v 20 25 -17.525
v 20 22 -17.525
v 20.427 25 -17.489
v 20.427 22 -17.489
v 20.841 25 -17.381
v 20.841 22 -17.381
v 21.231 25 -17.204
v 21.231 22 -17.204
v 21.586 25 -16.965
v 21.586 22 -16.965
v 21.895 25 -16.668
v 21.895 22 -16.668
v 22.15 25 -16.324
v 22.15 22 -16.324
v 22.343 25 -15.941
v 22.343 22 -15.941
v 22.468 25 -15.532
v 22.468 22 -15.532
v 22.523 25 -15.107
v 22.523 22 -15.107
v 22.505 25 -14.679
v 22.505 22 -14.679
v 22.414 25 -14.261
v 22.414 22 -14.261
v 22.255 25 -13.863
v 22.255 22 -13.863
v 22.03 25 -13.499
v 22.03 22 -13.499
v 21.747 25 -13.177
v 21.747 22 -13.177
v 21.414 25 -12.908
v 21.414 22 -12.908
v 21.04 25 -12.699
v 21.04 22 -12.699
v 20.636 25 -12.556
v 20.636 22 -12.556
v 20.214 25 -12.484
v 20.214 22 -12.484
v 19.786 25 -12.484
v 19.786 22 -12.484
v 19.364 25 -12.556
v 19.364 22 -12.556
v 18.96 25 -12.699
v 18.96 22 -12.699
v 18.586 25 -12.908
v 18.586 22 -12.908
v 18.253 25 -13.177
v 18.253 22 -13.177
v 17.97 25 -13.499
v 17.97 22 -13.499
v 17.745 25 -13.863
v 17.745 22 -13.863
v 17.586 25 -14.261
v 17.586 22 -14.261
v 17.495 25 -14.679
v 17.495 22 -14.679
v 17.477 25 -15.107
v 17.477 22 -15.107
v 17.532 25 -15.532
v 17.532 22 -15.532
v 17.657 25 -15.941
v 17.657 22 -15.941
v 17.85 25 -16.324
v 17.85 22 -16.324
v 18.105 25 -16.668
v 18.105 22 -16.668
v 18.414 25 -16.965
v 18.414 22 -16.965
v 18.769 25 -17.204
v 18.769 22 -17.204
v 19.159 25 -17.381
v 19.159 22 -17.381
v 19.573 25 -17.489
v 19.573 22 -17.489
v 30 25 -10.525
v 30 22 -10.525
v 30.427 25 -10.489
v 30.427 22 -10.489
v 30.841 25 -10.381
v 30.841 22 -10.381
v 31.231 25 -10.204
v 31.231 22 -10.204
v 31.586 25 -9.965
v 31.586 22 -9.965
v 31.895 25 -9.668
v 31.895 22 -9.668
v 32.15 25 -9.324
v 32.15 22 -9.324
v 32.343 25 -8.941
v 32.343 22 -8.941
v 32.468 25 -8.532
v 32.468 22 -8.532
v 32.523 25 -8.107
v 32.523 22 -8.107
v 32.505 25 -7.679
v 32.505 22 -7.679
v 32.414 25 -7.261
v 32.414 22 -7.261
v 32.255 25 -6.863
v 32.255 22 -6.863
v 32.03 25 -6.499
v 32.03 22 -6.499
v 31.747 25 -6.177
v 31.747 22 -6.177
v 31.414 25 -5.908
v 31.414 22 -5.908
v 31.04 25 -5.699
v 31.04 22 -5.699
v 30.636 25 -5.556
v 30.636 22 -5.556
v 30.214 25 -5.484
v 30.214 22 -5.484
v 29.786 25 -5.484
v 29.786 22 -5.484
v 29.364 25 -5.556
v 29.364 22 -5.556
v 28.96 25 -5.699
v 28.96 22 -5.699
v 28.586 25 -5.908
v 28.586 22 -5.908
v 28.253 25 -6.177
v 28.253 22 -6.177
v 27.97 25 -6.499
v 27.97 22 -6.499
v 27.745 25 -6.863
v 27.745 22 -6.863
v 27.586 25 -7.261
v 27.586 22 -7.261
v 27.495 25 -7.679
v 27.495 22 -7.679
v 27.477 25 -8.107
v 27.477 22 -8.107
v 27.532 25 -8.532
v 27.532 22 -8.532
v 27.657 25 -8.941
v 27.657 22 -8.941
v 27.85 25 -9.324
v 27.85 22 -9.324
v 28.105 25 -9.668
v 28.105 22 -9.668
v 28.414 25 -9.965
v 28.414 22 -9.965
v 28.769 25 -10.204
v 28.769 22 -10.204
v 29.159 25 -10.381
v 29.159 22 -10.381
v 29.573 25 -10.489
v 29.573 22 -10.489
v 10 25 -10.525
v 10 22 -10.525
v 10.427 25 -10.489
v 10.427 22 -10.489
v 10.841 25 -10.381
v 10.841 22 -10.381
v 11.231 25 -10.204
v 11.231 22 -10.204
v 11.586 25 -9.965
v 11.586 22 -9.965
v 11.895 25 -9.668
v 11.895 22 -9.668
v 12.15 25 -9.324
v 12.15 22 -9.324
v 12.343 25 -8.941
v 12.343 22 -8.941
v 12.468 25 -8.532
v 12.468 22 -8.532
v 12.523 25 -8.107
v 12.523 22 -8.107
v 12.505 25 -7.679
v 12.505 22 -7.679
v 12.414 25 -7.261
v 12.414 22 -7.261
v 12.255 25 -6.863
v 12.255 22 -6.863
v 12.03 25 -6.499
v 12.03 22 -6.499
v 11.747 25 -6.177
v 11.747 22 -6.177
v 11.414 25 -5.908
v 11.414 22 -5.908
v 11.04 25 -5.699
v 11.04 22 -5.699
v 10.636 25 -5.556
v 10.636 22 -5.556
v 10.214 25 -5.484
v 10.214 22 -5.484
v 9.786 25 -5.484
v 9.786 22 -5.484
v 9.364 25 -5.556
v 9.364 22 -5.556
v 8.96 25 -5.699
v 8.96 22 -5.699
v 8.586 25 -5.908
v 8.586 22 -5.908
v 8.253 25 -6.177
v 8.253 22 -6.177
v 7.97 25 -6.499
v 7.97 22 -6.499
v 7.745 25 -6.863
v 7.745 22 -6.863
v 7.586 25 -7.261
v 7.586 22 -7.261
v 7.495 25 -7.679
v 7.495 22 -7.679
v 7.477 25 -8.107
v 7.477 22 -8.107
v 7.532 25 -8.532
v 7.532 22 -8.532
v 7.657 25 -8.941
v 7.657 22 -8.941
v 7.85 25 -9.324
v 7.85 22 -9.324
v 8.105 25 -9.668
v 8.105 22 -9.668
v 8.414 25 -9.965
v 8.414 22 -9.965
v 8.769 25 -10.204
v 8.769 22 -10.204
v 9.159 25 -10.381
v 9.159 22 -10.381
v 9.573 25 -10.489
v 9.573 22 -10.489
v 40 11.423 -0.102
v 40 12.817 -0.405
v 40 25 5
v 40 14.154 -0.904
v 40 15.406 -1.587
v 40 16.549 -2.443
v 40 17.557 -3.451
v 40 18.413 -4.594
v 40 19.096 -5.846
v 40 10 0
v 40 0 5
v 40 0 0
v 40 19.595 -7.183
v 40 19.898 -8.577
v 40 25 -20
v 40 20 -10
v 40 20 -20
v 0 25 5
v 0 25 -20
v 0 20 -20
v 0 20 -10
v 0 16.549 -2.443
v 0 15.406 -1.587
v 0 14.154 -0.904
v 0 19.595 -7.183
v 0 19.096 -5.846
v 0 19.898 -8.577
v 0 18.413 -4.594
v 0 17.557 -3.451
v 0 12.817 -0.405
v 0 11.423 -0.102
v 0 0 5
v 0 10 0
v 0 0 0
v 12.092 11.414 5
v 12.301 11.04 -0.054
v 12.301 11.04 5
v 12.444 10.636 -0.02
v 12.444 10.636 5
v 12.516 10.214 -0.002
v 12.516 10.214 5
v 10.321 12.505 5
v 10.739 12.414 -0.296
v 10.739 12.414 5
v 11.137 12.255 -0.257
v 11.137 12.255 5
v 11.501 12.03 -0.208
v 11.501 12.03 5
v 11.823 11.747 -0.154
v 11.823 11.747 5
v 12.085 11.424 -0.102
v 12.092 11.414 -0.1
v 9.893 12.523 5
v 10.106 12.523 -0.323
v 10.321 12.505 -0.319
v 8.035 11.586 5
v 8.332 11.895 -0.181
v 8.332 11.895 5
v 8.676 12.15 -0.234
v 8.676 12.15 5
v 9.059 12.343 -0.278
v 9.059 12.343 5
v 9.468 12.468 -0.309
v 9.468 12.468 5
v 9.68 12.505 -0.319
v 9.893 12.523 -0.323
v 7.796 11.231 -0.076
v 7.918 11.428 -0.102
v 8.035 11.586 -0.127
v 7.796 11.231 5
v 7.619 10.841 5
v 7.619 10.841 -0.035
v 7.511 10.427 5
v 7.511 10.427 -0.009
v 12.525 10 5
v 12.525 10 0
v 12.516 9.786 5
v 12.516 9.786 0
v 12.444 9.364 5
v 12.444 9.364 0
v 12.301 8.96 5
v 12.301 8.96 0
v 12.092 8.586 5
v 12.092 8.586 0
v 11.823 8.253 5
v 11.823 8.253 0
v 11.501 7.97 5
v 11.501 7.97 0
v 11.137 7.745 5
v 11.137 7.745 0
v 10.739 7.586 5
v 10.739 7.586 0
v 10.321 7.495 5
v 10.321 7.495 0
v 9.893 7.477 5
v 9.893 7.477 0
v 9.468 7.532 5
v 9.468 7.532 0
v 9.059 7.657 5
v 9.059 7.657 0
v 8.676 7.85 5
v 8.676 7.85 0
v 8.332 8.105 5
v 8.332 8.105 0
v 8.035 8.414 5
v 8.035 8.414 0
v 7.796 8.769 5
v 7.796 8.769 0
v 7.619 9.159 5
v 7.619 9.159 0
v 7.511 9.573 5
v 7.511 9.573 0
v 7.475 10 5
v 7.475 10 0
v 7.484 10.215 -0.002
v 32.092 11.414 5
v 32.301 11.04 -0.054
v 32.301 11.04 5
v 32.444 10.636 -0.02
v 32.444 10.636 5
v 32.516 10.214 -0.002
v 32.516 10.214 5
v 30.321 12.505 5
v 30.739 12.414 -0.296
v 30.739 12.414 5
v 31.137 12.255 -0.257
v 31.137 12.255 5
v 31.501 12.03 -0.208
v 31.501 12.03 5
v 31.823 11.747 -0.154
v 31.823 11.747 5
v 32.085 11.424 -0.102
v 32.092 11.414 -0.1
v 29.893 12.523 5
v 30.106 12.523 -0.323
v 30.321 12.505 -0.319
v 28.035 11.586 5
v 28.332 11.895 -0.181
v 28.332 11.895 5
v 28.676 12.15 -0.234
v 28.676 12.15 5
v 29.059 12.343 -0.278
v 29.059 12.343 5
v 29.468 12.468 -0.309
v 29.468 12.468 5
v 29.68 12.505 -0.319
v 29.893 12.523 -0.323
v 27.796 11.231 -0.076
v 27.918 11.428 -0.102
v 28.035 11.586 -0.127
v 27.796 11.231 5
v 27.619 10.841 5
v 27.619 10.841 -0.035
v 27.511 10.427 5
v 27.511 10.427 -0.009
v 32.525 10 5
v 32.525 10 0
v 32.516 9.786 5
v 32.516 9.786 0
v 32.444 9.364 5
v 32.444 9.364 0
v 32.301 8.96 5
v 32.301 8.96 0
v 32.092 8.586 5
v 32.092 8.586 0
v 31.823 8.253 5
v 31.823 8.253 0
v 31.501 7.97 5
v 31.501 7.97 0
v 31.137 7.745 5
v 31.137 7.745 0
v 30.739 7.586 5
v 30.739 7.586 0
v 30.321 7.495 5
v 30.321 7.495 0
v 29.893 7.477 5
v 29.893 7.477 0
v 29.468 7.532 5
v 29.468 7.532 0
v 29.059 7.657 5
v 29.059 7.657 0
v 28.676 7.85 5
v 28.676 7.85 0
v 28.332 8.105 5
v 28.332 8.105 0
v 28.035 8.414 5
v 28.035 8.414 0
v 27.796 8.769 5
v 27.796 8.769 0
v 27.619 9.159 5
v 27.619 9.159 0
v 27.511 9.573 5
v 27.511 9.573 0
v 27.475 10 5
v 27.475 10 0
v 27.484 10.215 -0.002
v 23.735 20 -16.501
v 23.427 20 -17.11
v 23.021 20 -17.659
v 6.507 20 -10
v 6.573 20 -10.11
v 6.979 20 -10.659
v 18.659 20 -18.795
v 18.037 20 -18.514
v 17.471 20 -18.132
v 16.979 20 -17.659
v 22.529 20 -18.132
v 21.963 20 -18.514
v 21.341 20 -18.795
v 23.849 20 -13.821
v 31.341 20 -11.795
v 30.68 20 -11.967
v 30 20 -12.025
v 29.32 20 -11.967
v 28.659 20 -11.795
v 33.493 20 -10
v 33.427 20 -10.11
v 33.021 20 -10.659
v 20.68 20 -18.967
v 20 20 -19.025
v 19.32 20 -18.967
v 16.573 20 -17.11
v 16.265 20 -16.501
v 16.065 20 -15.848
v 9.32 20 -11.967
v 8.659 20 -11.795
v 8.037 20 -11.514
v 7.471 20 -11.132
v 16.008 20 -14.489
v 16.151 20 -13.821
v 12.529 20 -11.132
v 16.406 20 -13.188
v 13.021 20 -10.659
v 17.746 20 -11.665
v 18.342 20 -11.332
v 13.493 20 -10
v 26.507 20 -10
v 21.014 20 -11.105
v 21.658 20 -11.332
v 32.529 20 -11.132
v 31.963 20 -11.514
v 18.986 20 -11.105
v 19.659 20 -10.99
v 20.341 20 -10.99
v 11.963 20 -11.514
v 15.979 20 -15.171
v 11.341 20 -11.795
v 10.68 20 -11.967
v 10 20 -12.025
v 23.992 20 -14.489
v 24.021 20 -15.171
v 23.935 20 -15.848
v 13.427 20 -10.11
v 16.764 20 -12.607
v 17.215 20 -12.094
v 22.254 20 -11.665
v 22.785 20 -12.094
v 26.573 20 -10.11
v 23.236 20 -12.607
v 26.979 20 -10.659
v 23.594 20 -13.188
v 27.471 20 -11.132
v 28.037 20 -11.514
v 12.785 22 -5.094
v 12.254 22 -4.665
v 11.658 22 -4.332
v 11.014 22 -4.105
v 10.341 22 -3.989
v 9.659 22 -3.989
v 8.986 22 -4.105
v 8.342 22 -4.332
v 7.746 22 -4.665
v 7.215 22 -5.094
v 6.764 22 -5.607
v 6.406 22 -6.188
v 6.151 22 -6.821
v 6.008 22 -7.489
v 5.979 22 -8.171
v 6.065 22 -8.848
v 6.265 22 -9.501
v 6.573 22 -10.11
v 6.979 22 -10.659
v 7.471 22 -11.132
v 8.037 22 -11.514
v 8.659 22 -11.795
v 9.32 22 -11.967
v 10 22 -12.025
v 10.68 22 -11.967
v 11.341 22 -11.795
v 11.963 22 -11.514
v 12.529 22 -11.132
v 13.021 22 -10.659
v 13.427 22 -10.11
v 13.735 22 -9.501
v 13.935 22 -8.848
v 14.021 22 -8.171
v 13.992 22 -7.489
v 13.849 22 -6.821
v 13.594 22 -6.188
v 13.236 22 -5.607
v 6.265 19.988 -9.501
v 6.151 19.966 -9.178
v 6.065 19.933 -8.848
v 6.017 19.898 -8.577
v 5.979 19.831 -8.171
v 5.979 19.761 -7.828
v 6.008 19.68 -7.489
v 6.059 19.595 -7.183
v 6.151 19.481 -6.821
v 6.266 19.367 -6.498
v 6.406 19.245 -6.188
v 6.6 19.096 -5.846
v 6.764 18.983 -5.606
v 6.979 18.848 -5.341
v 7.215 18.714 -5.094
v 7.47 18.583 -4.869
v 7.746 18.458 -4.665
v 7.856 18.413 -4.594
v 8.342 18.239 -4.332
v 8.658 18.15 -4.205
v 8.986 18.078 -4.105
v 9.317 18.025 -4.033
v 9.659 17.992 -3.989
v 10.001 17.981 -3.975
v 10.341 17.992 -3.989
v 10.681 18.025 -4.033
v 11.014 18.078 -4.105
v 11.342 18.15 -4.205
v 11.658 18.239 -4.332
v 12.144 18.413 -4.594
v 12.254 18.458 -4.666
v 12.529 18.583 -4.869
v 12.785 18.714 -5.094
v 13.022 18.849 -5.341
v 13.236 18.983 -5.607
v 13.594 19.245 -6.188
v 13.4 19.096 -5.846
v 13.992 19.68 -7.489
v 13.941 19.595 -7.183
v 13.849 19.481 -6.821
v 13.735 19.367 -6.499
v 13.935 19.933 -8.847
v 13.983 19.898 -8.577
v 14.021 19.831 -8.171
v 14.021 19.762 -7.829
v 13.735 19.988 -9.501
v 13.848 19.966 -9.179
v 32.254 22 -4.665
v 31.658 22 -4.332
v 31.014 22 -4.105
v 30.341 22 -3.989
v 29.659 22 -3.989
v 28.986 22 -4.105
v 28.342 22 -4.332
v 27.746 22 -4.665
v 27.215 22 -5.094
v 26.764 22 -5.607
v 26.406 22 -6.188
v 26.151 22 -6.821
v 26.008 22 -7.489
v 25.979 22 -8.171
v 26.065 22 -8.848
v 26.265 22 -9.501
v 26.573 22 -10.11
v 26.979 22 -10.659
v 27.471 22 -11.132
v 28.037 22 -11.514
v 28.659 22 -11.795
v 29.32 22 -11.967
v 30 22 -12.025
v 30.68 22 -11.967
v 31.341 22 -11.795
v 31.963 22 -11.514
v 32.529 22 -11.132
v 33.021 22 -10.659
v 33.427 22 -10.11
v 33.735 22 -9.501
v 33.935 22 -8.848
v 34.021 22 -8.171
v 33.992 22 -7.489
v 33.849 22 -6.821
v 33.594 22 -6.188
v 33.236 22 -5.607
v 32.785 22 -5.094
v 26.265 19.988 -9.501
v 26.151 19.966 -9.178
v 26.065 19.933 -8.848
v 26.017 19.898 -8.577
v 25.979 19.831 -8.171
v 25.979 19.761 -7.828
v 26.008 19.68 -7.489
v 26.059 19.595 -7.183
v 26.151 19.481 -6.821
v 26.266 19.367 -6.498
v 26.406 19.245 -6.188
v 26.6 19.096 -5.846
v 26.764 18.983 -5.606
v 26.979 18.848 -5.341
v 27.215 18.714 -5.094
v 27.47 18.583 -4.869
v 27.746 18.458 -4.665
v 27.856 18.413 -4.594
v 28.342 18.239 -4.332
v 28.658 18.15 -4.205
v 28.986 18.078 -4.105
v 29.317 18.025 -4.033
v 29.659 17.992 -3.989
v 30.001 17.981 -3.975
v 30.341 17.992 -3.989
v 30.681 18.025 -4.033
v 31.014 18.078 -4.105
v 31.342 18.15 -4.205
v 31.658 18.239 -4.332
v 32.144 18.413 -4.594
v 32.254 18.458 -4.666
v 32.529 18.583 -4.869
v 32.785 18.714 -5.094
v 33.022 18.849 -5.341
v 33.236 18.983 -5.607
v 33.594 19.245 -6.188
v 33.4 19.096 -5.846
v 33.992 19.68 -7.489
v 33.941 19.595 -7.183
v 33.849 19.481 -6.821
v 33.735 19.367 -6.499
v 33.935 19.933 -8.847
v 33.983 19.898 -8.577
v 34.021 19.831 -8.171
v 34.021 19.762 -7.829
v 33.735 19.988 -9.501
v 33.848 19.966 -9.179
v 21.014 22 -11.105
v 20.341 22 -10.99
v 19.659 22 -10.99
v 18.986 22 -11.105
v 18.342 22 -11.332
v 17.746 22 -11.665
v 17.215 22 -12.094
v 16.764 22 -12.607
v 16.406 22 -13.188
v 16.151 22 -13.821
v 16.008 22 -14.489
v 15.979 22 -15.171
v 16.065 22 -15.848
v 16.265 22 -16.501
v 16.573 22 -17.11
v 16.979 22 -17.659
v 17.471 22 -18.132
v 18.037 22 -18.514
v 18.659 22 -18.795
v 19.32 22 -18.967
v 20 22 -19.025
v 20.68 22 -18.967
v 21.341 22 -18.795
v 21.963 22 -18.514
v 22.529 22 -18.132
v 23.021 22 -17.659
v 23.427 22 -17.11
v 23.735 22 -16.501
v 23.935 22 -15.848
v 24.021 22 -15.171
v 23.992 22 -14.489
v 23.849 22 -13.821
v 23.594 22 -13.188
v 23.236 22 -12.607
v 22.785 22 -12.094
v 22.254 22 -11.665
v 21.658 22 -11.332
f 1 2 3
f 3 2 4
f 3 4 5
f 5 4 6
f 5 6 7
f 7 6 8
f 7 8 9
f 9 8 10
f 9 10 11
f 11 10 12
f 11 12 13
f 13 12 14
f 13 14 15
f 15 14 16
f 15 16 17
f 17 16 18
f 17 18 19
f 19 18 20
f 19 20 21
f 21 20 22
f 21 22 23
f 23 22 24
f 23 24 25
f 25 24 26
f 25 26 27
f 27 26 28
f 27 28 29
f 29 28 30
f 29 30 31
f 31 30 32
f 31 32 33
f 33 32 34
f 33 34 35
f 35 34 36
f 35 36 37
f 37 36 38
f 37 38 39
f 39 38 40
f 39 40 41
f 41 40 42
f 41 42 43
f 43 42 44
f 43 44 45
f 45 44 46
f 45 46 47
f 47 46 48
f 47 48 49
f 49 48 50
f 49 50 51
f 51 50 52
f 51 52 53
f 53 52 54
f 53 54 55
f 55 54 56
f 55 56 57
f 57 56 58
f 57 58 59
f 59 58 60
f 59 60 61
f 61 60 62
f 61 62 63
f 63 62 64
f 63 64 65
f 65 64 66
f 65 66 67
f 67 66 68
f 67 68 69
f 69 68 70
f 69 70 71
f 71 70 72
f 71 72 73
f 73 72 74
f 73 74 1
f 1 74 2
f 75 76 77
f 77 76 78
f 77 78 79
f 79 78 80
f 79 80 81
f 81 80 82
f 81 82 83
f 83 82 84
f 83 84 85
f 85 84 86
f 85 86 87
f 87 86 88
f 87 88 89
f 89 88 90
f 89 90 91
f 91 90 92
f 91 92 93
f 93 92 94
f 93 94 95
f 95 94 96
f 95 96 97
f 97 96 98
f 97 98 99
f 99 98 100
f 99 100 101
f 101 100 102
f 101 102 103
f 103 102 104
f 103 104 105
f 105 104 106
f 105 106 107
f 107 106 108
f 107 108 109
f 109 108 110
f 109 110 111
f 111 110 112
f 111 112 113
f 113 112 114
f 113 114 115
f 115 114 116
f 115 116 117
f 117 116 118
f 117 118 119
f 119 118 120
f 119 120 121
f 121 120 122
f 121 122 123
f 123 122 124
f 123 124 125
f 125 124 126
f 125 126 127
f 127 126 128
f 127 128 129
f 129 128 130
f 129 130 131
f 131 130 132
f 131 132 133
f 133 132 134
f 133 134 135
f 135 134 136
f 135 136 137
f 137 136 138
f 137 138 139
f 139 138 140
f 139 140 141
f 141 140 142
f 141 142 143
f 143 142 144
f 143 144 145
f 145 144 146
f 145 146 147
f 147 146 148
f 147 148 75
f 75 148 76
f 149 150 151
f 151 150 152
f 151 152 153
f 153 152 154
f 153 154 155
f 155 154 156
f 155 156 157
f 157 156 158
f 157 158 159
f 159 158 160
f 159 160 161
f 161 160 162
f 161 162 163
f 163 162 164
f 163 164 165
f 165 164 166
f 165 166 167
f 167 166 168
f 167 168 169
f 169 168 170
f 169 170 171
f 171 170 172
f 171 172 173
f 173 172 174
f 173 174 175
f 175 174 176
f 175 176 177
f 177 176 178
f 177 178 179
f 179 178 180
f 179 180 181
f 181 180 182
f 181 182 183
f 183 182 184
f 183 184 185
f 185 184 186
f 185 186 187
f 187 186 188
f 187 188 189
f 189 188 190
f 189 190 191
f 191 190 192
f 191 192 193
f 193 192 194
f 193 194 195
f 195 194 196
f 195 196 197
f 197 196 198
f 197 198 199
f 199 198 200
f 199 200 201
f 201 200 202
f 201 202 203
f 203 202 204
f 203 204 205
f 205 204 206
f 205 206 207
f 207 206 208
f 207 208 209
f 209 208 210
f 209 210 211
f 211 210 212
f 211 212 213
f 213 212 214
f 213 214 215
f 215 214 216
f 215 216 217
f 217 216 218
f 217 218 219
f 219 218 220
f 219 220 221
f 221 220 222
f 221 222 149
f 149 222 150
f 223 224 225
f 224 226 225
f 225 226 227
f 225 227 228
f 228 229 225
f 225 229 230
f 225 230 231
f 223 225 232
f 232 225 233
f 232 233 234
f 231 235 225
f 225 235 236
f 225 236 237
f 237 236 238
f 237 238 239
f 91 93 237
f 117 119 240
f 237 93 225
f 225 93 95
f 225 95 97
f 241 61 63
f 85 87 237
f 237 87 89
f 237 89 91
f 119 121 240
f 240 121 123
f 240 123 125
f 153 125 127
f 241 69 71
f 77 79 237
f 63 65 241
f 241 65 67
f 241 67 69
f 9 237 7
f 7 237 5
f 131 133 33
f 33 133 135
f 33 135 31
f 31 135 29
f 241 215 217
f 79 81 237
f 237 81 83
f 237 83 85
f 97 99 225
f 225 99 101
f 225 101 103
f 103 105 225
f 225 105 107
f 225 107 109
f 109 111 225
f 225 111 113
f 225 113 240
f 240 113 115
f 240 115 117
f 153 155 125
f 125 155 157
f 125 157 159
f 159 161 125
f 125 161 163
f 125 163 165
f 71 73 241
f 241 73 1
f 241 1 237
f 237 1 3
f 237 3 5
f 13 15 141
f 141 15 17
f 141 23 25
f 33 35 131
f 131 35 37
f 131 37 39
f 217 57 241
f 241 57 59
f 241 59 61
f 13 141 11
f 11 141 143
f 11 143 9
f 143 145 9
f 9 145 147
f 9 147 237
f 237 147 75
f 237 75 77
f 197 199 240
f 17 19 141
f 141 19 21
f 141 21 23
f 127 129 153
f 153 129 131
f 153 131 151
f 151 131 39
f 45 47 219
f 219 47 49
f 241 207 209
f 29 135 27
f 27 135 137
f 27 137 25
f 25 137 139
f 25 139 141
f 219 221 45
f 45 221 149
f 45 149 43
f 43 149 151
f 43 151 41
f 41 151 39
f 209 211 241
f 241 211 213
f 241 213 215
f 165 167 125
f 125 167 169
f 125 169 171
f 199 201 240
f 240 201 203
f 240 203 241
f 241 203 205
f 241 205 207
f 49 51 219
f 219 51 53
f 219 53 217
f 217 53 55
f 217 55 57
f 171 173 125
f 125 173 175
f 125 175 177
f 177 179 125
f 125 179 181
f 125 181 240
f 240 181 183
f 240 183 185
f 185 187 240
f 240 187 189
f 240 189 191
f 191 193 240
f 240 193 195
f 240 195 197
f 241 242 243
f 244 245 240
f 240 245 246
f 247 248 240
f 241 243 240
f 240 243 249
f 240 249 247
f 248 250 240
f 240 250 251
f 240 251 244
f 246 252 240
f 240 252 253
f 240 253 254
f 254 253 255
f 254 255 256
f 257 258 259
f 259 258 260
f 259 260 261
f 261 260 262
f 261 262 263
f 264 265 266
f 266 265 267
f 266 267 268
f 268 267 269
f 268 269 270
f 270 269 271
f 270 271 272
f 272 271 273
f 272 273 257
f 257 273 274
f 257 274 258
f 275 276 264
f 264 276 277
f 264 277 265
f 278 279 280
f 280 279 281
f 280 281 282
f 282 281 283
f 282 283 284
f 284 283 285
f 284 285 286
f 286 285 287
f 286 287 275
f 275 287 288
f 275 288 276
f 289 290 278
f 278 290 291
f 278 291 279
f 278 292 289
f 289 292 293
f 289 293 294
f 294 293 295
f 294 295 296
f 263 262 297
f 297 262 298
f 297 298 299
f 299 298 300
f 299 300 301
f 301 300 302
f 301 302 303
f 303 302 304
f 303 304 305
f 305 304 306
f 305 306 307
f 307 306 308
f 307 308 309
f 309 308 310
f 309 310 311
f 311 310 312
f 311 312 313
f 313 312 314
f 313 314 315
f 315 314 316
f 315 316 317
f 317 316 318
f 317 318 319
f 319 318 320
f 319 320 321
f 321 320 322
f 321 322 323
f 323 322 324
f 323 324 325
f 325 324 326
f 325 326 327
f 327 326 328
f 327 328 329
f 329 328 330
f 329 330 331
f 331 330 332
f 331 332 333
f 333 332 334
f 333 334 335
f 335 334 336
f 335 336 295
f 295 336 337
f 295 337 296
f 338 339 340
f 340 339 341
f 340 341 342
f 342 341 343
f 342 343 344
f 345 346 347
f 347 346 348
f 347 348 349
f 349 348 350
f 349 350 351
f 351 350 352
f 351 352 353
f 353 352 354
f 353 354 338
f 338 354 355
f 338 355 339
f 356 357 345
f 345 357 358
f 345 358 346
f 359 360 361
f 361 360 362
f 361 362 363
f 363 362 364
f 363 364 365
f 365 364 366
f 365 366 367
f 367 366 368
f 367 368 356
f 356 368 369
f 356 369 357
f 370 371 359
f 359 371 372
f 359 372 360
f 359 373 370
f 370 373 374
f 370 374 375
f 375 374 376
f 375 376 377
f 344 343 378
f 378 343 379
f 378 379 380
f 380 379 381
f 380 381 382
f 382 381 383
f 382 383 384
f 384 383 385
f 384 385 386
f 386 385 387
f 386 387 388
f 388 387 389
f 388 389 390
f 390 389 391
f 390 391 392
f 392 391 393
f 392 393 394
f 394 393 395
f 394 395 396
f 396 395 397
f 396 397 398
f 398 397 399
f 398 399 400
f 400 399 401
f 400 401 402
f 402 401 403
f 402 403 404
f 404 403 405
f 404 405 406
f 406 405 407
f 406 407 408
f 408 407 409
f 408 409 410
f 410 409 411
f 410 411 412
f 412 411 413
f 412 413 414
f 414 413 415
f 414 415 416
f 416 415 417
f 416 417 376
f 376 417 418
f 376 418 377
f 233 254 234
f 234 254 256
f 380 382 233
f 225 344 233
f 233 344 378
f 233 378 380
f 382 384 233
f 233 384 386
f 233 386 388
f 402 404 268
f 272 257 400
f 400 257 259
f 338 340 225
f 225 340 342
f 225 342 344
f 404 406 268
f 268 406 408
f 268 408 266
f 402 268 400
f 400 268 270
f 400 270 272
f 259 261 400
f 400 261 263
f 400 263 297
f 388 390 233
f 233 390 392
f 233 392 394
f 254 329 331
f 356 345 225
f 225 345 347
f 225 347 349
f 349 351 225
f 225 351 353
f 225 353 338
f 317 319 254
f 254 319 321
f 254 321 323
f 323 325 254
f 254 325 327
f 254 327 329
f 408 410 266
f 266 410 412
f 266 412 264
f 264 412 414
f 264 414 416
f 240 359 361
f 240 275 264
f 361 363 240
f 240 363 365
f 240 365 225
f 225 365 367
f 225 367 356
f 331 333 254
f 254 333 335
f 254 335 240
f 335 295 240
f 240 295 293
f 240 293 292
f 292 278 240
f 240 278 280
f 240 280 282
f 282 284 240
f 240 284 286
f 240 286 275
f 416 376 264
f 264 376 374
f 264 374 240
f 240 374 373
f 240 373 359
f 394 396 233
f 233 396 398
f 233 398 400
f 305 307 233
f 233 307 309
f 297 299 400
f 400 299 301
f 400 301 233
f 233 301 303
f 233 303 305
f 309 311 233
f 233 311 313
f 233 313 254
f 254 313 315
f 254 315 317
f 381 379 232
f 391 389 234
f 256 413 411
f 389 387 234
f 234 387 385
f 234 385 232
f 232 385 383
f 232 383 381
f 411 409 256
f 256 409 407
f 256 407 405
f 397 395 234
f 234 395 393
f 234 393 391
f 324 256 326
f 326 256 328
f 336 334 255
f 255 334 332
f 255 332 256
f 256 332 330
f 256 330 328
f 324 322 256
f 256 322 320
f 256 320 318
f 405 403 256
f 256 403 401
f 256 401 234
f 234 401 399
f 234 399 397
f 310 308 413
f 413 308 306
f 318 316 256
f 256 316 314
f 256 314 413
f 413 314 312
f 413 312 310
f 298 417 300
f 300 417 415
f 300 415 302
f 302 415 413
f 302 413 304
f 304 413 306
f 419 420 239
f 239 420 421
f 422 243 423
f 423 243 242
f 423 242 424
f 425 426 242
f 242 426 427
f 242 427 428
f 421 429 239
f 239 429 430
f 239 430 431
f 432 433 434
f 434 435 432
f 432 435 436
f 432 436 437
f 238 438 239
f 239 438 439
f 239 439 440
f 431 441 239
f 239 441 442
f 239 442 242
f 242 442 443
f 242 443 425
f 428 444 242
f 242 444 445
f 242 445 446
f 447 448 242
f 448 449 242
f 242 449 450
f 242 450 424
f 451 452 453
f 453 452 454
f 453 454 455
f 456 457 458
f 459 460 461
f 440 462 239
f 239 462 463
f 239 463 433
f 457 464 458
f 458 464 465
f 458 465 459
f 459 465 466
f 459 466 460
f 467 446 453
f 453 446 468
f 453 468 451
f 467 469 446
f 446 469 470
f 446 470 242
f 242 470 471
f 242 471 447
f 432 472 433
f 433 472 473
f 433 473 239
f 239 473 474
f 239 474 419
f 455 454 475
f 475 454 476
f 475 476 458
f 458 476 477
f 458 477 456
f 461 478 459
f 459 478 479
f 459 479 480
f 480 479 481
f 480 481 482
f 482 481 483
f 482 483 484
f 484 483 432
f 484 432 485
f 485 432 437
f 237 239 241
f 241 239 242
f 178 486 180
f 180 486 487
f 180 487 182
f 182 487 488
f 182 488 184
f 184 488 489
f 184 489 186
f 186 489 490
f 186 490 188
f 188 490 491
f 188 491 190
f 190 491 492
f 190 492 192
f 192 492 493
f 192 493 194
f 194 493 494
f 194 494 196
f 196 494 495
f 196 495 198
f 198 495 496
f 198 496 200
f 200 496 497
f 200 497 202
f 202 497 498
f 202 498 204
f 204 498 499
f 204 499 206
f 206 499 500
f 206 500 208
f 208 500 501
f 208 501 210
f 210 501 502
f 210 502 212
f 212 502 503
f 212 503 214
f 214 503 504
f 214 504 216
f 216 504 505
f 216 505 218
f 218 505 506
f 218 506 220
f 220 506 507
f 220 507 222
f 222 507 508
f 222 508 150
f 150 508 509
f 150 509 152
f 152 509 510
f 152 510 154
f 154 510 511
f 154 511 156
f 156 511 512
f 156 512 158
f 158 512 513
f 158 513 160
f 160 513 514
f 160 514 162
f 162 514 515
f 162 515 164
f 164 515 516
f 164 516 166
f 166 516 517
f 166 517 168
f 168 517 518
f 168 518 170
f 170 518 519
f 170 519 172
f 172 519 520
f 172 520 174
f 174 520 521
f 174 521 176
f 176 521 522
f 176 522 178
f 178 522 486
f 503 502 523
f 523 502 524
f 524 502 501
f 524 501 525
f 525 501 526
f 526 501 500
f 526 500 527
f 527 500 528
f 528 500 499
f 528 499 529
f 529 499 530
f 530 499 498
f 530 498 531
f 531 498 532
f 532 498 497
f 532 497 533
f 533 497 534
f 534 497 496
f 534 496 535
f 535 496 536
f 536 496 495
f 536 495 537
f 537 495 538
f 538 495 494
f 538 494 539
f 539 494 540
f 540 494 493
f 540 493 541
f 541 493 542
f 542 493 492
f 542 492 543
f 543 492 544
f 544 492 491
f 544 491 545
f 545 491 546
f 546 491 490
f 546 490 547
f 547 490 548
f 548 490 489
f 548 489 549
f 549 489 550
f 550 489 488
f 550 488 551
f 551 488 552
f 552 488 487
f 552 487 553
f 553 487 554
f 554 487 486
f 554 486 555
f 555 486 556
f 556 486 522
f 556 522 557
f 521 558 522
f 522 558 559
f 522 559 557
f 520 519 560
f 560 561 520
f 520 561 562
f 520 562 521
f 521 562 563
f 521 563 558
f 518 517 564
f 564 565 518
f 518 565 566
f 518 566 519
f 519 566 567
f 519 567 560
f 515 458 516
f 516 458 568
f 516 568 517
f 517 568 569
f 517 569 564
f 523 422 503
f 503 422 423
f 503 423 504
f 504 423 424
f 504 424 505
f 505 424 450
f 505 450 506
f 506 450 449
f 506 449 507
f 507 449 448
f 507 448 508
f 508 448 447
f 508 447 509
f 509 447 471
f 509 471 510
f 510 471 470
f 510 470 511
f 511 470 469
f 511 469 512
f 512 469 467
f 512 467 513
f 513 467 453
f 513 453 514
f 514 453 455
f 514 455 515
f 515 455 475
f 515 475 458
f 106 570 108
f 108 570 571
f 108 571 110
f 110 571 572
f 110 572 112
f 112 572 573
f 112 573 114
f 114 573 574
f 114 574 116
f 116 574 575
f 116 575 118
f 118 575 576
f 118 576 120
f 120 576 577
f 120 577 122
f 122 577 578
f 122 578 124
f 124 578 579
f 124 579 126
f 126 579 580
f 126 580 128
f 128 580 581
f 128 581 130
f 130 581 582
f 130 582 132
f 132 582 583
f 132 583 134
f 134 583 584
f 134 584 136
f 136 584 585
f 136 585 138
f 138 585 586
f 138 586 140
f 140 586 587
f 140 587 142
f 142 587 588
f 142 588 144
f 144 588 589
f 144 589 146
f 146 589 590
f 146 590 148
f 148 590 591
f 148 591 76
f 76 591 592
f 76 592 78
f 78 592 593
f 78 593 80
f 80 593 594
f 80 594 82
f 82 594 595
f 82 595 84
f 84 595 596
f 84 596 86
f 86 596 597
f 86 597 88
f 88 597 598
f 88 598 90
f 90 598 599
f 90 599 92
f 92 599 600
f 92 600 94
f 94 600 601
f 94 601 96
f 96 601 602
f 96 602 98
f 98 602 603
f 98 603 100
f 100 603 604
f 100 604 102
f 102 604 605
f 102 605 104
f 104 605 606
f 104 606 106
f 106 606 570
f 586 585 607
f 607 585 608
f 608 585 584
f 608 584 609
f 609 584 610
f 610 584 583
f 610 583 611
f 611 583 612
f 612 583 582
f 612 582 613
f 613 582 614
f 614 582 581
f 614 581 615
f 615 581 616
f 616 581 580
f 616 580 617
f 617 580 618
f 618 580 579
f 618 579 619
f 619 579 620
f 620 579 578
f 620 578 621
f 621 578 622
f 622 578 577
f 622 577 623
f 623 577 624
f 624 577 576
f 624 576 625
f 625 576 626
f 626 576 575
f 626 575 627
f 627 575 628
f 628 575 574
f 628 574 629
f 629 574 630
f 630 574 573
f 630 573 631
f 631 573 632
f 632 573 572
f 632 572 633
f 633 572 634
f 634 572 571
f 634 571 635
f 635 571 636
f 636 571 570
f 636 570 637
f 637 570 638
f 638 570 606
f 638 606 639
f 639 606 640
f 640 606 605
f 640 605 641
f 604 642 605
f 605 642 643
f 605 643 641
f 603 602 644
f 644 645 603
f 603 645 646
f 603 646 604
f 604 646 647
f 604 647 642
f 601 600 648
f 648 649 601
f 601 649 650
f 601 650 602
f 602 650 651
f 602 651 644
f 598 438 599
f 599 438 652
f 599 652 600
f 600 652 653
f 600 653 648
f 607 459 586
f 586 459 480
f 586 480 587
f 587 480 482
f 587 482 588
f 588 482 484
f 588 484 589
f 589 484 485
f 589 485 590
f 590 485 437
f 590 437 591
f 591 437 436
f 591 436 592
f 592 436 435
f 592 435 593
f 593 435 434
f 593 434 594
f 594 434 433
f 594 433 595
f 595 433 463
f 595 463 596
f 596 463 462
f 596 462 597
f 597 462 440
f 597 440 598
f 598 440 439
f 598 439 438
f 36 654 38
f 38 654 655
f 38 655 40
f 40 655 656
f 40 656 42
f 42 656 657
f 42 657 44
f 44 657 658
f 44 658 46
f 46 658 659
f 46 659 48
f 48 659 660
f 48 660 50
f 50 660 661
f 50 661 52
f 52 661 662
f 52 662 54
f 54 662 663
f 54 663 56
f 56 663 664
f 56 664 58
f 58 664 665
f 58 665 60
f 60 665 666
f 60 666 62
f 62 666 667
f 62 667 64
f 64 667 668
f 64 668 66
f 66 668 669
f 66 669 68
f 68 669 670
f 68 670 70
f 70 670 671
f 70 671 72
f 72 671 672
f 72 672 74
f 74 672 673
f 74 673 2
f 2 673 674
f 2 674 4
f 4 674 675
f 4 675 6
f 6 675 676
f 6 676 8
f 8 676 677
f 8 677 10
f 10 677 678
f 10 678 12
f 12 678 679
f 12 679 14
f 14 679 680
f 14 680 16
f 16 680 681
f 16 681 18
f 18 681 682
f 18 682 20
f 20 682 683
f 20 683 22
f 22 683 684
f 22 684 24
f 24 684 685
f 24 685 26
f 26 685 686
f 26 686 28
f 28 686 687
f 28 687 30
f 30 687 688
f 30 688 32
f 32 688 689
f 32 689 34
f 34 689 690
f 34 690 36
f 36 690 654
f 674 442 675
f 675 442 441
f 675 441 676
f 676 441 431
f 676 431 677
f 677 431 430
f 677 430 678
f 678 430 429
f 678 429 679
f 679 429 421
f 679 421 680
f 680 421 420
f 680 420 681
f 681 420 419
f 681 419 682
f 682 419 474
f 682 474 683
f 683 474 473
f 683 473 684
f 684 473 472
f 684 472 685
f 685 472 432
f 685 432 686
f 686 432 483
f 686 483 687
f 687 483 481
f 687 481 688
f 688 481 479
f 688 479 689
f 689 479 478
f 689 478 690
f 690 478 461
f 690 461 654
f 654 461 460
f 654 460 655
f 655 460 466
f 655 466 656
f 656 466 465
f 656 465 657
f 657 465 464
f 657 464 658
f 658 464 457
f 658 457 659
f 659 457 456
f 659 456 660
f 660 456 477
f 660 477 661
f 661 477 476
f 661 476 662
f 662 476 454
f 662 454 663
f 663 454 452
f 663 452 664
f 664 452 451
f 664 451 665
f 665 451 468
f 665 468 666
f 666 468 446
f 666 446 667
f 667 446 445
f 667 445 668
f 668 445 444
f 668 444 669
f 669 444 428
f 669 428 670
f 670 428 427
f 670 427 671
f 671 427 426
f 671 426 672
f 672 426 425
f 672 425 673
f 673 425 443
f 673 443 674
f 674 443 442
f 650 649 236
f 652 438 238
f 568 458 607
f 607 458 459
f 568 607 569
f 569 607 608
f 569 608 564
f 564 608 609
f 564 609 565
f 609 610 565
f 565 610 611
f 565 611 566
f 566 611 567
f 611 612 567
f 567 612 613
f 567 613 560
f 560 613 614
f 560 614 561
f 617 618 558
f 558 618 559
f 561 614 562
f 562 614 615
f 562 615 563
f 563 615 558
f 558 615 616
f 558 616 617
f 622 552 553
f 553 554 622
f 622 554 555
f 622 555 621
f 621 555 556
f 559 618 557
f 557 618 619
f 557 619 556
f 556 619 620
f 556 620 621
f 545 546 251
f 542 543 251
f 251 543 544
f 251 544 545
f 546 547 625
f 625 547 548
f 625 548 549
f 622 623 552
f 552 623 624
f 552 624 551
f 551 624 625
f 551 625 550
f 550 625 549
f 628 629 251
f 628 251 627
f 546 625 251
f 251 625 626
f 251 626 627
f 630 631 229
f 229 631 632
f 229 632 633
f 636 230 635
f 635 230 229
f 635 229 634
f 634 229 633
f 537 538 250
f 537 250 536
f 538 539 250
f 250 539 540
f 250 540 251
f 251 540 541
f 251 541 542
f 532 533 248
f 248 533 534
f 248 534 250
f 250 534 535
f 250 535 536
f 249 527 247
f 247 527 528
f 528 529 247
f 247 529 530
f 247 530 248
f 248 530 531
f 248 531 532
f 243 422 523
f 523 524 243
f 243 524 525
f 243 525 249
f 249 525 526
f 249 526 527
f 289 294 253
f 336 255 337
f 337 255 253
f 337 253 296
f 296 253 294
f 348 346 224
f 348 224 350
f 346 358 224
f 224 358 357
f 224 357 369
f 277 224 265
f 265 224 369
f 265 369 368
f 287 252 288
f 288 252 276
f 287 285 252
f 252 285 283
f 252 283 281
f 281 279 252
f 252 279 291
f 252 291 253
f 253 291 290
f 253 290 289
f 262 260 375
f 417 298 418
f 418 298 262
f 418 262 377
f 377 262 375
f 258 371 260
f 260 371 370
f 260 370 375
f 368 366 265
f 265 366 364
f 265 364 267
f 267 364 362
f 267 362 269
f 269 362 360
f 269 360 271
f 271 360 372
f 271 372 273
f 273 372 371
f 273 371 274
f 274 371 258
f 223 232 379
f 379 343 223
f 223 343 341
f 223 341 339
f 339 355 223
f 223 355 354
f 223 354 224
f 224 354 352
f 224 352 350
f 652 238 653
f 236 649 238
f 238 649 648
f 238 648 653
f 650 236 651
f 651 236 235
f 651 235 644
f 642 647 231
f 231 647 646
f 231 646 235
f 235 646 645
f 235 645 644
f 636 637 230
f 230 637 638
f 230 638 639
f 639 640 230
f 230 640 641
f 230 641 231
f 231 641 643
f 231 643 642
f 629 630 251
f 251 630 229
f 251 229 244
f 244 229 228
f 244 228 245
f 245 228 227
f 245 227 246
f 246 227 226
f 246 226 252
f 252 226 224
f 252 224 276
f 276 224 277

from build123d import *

# Parameters (mm, degrees)
CROQUIS1_W              = 40
CROQUIS1_H              = 20
CROQUIS1_R              = 2.525
CROQUIS1_H_2            = 5
SALIENTE_EXTRUIR1_DEPTH = 5
CROQUIS1_3_W            = 40
CROQUIS1_3_H            = 5
SALIENTE_EXTRUIR2_DEPTH = 20
CROQUIS2_R              = 2.525
CORTAR_EXTRUIR1_DEPTH   = 49.989794856
CROQUIS4_R              = 4.025
CORTAR_EXTRUIR2_DEPTH   = 2
REDONDEO1_R             = 10


with BuildPart() as part:
    # Croquis1 → Saliente-Extruir1 (new body)
    # profile 1 of 2: a face of its own
    with BuildSketch(Plane.XY):
        with Locations((20, 10)):
            Rectangle(CROQUIS1_W, CROQUIS1_H)
        with Locations((10, 10)):
            Circle(CROQUIS1_R, mode=Mode.SUBTRACT)
        with Locations((30, 10)):
            Circle(CROQUIS1_R, mode=Mode.SUBTRACT)
    # profile 2 of 2: a face of its own
    with BuildSketch(Plane.XY):
        with Locations((20, 22.5)):
            Rectangle(CROQUIS1_W, CROQUIS1_H_2)
    extrude(amount=SALIENTE_EXTRUIR1_DEPTH)

    # Croquis1<3> → Saliente-Extruir2 (add)
    with BuildSketch(Plane.XY):
        with Locations((20, 22.5)):
            Rectangle(CROQUIS1_3_W, CROQUIS1_3_H)
    extrude(amount=-SALIENTE_EXTRUIR2_DEPTH)

    # Croquis2 → Cortar-Extruir1 (cut, through all)
    with BuildSketch(Plane.XZ.offset(-20)):
        with Locations(Location((10, -8, 0), (0, 0, 270))):
            Circle(CROQUIS2_R)
        with Locations(Location((30, -8, 0), (0, 0, 270))):
            Circle(CROQUIS2_R)
        with Locations(Location((20, -15, 0), (0, 0, 270))):
            Circle(CROQUIS2_R)
    extrude(amount=-CORTAR_EXTRUIR1_DEPTH, mode=Mode.SUBTRACT)

    # Croquis4 → Cortar-Extruir2 (cut)
    with BuildSketch(Plane.XZ.offset(-20)):
        with Locations(Location((10, -8, 0), (0, 0, 270))):
            Circle(CROQUIS4_R)
        with Locations(Location((20, -15, 0), (0, 0, 270))):
            Circle(CROQUIS4_R)
        with Locations(Location((30, -8, 0), (0, 0, 270))):
            Circle(CROQUIS4_R)
    extrude(amount=-CORTAR_EXTRUIR2_DEPTH, mode=Mode.SUBTRACT)

    # Redondeo1
    # the kernel refuses this fillet: 10 mm, written as the material it adds along each edge
    with BuildSketch(Plane(origin=(0, 20, 0), x_dir=(0, -1, 0), z_dir=(1, 0, 0))) as redondeo1_piece_1_section:
        with BuildLine():
            CenterArc((REDONDEO1_R, REDONDEO1_R), REDONDEO1_R, 180, 90)
            Line((0, REDONDEO1_R), (0, 0))
            Line((0, 0), (REDONDEO1_R, 0))
        make_face()
    redondeo1_piece_1 = extrude(amount=40, mode=Mode.PRIVATE)
    redondeo1_piece_1 = redondeo1_piece_1 - Plane(origin=(10, 10, -2.034462618), x_dir=(1, 0, 0), z_dir=(0, 0, -1)) * Cylinder(2.525, 120, mode=Mode.PRIVATE)
    redondeo1_piece_1 = redondeo1_piece_1 - Plane(origin=(30, 10, -2.034462618), x_dir=(1, 0, 0), z_dir=(0, 0, -1)) * Cylinder(2.525, 120, mode=Mode.PRIVATE)
    redondeo1_piece_1 = redondeo1_piece_1 - Plane(origin=(10, 17.656034645, -8), x_dir=(0, 0, -1), z_dir=(0, -1, 0)) * Cylinder(4.025, 120, mode=Mode.PRIVATE)
    redondeo1_piece_1 = redondeo1_piece_1 - Plane(origin=(30, 17.656034645, -8), x_dir=(0, 0, -1), z_dir=(0, -1, 0)) * Cylinder(4.025, 120, mode=Mode.PRIVATE)
    add(redondeo1_piece_1)


solid = part.part
